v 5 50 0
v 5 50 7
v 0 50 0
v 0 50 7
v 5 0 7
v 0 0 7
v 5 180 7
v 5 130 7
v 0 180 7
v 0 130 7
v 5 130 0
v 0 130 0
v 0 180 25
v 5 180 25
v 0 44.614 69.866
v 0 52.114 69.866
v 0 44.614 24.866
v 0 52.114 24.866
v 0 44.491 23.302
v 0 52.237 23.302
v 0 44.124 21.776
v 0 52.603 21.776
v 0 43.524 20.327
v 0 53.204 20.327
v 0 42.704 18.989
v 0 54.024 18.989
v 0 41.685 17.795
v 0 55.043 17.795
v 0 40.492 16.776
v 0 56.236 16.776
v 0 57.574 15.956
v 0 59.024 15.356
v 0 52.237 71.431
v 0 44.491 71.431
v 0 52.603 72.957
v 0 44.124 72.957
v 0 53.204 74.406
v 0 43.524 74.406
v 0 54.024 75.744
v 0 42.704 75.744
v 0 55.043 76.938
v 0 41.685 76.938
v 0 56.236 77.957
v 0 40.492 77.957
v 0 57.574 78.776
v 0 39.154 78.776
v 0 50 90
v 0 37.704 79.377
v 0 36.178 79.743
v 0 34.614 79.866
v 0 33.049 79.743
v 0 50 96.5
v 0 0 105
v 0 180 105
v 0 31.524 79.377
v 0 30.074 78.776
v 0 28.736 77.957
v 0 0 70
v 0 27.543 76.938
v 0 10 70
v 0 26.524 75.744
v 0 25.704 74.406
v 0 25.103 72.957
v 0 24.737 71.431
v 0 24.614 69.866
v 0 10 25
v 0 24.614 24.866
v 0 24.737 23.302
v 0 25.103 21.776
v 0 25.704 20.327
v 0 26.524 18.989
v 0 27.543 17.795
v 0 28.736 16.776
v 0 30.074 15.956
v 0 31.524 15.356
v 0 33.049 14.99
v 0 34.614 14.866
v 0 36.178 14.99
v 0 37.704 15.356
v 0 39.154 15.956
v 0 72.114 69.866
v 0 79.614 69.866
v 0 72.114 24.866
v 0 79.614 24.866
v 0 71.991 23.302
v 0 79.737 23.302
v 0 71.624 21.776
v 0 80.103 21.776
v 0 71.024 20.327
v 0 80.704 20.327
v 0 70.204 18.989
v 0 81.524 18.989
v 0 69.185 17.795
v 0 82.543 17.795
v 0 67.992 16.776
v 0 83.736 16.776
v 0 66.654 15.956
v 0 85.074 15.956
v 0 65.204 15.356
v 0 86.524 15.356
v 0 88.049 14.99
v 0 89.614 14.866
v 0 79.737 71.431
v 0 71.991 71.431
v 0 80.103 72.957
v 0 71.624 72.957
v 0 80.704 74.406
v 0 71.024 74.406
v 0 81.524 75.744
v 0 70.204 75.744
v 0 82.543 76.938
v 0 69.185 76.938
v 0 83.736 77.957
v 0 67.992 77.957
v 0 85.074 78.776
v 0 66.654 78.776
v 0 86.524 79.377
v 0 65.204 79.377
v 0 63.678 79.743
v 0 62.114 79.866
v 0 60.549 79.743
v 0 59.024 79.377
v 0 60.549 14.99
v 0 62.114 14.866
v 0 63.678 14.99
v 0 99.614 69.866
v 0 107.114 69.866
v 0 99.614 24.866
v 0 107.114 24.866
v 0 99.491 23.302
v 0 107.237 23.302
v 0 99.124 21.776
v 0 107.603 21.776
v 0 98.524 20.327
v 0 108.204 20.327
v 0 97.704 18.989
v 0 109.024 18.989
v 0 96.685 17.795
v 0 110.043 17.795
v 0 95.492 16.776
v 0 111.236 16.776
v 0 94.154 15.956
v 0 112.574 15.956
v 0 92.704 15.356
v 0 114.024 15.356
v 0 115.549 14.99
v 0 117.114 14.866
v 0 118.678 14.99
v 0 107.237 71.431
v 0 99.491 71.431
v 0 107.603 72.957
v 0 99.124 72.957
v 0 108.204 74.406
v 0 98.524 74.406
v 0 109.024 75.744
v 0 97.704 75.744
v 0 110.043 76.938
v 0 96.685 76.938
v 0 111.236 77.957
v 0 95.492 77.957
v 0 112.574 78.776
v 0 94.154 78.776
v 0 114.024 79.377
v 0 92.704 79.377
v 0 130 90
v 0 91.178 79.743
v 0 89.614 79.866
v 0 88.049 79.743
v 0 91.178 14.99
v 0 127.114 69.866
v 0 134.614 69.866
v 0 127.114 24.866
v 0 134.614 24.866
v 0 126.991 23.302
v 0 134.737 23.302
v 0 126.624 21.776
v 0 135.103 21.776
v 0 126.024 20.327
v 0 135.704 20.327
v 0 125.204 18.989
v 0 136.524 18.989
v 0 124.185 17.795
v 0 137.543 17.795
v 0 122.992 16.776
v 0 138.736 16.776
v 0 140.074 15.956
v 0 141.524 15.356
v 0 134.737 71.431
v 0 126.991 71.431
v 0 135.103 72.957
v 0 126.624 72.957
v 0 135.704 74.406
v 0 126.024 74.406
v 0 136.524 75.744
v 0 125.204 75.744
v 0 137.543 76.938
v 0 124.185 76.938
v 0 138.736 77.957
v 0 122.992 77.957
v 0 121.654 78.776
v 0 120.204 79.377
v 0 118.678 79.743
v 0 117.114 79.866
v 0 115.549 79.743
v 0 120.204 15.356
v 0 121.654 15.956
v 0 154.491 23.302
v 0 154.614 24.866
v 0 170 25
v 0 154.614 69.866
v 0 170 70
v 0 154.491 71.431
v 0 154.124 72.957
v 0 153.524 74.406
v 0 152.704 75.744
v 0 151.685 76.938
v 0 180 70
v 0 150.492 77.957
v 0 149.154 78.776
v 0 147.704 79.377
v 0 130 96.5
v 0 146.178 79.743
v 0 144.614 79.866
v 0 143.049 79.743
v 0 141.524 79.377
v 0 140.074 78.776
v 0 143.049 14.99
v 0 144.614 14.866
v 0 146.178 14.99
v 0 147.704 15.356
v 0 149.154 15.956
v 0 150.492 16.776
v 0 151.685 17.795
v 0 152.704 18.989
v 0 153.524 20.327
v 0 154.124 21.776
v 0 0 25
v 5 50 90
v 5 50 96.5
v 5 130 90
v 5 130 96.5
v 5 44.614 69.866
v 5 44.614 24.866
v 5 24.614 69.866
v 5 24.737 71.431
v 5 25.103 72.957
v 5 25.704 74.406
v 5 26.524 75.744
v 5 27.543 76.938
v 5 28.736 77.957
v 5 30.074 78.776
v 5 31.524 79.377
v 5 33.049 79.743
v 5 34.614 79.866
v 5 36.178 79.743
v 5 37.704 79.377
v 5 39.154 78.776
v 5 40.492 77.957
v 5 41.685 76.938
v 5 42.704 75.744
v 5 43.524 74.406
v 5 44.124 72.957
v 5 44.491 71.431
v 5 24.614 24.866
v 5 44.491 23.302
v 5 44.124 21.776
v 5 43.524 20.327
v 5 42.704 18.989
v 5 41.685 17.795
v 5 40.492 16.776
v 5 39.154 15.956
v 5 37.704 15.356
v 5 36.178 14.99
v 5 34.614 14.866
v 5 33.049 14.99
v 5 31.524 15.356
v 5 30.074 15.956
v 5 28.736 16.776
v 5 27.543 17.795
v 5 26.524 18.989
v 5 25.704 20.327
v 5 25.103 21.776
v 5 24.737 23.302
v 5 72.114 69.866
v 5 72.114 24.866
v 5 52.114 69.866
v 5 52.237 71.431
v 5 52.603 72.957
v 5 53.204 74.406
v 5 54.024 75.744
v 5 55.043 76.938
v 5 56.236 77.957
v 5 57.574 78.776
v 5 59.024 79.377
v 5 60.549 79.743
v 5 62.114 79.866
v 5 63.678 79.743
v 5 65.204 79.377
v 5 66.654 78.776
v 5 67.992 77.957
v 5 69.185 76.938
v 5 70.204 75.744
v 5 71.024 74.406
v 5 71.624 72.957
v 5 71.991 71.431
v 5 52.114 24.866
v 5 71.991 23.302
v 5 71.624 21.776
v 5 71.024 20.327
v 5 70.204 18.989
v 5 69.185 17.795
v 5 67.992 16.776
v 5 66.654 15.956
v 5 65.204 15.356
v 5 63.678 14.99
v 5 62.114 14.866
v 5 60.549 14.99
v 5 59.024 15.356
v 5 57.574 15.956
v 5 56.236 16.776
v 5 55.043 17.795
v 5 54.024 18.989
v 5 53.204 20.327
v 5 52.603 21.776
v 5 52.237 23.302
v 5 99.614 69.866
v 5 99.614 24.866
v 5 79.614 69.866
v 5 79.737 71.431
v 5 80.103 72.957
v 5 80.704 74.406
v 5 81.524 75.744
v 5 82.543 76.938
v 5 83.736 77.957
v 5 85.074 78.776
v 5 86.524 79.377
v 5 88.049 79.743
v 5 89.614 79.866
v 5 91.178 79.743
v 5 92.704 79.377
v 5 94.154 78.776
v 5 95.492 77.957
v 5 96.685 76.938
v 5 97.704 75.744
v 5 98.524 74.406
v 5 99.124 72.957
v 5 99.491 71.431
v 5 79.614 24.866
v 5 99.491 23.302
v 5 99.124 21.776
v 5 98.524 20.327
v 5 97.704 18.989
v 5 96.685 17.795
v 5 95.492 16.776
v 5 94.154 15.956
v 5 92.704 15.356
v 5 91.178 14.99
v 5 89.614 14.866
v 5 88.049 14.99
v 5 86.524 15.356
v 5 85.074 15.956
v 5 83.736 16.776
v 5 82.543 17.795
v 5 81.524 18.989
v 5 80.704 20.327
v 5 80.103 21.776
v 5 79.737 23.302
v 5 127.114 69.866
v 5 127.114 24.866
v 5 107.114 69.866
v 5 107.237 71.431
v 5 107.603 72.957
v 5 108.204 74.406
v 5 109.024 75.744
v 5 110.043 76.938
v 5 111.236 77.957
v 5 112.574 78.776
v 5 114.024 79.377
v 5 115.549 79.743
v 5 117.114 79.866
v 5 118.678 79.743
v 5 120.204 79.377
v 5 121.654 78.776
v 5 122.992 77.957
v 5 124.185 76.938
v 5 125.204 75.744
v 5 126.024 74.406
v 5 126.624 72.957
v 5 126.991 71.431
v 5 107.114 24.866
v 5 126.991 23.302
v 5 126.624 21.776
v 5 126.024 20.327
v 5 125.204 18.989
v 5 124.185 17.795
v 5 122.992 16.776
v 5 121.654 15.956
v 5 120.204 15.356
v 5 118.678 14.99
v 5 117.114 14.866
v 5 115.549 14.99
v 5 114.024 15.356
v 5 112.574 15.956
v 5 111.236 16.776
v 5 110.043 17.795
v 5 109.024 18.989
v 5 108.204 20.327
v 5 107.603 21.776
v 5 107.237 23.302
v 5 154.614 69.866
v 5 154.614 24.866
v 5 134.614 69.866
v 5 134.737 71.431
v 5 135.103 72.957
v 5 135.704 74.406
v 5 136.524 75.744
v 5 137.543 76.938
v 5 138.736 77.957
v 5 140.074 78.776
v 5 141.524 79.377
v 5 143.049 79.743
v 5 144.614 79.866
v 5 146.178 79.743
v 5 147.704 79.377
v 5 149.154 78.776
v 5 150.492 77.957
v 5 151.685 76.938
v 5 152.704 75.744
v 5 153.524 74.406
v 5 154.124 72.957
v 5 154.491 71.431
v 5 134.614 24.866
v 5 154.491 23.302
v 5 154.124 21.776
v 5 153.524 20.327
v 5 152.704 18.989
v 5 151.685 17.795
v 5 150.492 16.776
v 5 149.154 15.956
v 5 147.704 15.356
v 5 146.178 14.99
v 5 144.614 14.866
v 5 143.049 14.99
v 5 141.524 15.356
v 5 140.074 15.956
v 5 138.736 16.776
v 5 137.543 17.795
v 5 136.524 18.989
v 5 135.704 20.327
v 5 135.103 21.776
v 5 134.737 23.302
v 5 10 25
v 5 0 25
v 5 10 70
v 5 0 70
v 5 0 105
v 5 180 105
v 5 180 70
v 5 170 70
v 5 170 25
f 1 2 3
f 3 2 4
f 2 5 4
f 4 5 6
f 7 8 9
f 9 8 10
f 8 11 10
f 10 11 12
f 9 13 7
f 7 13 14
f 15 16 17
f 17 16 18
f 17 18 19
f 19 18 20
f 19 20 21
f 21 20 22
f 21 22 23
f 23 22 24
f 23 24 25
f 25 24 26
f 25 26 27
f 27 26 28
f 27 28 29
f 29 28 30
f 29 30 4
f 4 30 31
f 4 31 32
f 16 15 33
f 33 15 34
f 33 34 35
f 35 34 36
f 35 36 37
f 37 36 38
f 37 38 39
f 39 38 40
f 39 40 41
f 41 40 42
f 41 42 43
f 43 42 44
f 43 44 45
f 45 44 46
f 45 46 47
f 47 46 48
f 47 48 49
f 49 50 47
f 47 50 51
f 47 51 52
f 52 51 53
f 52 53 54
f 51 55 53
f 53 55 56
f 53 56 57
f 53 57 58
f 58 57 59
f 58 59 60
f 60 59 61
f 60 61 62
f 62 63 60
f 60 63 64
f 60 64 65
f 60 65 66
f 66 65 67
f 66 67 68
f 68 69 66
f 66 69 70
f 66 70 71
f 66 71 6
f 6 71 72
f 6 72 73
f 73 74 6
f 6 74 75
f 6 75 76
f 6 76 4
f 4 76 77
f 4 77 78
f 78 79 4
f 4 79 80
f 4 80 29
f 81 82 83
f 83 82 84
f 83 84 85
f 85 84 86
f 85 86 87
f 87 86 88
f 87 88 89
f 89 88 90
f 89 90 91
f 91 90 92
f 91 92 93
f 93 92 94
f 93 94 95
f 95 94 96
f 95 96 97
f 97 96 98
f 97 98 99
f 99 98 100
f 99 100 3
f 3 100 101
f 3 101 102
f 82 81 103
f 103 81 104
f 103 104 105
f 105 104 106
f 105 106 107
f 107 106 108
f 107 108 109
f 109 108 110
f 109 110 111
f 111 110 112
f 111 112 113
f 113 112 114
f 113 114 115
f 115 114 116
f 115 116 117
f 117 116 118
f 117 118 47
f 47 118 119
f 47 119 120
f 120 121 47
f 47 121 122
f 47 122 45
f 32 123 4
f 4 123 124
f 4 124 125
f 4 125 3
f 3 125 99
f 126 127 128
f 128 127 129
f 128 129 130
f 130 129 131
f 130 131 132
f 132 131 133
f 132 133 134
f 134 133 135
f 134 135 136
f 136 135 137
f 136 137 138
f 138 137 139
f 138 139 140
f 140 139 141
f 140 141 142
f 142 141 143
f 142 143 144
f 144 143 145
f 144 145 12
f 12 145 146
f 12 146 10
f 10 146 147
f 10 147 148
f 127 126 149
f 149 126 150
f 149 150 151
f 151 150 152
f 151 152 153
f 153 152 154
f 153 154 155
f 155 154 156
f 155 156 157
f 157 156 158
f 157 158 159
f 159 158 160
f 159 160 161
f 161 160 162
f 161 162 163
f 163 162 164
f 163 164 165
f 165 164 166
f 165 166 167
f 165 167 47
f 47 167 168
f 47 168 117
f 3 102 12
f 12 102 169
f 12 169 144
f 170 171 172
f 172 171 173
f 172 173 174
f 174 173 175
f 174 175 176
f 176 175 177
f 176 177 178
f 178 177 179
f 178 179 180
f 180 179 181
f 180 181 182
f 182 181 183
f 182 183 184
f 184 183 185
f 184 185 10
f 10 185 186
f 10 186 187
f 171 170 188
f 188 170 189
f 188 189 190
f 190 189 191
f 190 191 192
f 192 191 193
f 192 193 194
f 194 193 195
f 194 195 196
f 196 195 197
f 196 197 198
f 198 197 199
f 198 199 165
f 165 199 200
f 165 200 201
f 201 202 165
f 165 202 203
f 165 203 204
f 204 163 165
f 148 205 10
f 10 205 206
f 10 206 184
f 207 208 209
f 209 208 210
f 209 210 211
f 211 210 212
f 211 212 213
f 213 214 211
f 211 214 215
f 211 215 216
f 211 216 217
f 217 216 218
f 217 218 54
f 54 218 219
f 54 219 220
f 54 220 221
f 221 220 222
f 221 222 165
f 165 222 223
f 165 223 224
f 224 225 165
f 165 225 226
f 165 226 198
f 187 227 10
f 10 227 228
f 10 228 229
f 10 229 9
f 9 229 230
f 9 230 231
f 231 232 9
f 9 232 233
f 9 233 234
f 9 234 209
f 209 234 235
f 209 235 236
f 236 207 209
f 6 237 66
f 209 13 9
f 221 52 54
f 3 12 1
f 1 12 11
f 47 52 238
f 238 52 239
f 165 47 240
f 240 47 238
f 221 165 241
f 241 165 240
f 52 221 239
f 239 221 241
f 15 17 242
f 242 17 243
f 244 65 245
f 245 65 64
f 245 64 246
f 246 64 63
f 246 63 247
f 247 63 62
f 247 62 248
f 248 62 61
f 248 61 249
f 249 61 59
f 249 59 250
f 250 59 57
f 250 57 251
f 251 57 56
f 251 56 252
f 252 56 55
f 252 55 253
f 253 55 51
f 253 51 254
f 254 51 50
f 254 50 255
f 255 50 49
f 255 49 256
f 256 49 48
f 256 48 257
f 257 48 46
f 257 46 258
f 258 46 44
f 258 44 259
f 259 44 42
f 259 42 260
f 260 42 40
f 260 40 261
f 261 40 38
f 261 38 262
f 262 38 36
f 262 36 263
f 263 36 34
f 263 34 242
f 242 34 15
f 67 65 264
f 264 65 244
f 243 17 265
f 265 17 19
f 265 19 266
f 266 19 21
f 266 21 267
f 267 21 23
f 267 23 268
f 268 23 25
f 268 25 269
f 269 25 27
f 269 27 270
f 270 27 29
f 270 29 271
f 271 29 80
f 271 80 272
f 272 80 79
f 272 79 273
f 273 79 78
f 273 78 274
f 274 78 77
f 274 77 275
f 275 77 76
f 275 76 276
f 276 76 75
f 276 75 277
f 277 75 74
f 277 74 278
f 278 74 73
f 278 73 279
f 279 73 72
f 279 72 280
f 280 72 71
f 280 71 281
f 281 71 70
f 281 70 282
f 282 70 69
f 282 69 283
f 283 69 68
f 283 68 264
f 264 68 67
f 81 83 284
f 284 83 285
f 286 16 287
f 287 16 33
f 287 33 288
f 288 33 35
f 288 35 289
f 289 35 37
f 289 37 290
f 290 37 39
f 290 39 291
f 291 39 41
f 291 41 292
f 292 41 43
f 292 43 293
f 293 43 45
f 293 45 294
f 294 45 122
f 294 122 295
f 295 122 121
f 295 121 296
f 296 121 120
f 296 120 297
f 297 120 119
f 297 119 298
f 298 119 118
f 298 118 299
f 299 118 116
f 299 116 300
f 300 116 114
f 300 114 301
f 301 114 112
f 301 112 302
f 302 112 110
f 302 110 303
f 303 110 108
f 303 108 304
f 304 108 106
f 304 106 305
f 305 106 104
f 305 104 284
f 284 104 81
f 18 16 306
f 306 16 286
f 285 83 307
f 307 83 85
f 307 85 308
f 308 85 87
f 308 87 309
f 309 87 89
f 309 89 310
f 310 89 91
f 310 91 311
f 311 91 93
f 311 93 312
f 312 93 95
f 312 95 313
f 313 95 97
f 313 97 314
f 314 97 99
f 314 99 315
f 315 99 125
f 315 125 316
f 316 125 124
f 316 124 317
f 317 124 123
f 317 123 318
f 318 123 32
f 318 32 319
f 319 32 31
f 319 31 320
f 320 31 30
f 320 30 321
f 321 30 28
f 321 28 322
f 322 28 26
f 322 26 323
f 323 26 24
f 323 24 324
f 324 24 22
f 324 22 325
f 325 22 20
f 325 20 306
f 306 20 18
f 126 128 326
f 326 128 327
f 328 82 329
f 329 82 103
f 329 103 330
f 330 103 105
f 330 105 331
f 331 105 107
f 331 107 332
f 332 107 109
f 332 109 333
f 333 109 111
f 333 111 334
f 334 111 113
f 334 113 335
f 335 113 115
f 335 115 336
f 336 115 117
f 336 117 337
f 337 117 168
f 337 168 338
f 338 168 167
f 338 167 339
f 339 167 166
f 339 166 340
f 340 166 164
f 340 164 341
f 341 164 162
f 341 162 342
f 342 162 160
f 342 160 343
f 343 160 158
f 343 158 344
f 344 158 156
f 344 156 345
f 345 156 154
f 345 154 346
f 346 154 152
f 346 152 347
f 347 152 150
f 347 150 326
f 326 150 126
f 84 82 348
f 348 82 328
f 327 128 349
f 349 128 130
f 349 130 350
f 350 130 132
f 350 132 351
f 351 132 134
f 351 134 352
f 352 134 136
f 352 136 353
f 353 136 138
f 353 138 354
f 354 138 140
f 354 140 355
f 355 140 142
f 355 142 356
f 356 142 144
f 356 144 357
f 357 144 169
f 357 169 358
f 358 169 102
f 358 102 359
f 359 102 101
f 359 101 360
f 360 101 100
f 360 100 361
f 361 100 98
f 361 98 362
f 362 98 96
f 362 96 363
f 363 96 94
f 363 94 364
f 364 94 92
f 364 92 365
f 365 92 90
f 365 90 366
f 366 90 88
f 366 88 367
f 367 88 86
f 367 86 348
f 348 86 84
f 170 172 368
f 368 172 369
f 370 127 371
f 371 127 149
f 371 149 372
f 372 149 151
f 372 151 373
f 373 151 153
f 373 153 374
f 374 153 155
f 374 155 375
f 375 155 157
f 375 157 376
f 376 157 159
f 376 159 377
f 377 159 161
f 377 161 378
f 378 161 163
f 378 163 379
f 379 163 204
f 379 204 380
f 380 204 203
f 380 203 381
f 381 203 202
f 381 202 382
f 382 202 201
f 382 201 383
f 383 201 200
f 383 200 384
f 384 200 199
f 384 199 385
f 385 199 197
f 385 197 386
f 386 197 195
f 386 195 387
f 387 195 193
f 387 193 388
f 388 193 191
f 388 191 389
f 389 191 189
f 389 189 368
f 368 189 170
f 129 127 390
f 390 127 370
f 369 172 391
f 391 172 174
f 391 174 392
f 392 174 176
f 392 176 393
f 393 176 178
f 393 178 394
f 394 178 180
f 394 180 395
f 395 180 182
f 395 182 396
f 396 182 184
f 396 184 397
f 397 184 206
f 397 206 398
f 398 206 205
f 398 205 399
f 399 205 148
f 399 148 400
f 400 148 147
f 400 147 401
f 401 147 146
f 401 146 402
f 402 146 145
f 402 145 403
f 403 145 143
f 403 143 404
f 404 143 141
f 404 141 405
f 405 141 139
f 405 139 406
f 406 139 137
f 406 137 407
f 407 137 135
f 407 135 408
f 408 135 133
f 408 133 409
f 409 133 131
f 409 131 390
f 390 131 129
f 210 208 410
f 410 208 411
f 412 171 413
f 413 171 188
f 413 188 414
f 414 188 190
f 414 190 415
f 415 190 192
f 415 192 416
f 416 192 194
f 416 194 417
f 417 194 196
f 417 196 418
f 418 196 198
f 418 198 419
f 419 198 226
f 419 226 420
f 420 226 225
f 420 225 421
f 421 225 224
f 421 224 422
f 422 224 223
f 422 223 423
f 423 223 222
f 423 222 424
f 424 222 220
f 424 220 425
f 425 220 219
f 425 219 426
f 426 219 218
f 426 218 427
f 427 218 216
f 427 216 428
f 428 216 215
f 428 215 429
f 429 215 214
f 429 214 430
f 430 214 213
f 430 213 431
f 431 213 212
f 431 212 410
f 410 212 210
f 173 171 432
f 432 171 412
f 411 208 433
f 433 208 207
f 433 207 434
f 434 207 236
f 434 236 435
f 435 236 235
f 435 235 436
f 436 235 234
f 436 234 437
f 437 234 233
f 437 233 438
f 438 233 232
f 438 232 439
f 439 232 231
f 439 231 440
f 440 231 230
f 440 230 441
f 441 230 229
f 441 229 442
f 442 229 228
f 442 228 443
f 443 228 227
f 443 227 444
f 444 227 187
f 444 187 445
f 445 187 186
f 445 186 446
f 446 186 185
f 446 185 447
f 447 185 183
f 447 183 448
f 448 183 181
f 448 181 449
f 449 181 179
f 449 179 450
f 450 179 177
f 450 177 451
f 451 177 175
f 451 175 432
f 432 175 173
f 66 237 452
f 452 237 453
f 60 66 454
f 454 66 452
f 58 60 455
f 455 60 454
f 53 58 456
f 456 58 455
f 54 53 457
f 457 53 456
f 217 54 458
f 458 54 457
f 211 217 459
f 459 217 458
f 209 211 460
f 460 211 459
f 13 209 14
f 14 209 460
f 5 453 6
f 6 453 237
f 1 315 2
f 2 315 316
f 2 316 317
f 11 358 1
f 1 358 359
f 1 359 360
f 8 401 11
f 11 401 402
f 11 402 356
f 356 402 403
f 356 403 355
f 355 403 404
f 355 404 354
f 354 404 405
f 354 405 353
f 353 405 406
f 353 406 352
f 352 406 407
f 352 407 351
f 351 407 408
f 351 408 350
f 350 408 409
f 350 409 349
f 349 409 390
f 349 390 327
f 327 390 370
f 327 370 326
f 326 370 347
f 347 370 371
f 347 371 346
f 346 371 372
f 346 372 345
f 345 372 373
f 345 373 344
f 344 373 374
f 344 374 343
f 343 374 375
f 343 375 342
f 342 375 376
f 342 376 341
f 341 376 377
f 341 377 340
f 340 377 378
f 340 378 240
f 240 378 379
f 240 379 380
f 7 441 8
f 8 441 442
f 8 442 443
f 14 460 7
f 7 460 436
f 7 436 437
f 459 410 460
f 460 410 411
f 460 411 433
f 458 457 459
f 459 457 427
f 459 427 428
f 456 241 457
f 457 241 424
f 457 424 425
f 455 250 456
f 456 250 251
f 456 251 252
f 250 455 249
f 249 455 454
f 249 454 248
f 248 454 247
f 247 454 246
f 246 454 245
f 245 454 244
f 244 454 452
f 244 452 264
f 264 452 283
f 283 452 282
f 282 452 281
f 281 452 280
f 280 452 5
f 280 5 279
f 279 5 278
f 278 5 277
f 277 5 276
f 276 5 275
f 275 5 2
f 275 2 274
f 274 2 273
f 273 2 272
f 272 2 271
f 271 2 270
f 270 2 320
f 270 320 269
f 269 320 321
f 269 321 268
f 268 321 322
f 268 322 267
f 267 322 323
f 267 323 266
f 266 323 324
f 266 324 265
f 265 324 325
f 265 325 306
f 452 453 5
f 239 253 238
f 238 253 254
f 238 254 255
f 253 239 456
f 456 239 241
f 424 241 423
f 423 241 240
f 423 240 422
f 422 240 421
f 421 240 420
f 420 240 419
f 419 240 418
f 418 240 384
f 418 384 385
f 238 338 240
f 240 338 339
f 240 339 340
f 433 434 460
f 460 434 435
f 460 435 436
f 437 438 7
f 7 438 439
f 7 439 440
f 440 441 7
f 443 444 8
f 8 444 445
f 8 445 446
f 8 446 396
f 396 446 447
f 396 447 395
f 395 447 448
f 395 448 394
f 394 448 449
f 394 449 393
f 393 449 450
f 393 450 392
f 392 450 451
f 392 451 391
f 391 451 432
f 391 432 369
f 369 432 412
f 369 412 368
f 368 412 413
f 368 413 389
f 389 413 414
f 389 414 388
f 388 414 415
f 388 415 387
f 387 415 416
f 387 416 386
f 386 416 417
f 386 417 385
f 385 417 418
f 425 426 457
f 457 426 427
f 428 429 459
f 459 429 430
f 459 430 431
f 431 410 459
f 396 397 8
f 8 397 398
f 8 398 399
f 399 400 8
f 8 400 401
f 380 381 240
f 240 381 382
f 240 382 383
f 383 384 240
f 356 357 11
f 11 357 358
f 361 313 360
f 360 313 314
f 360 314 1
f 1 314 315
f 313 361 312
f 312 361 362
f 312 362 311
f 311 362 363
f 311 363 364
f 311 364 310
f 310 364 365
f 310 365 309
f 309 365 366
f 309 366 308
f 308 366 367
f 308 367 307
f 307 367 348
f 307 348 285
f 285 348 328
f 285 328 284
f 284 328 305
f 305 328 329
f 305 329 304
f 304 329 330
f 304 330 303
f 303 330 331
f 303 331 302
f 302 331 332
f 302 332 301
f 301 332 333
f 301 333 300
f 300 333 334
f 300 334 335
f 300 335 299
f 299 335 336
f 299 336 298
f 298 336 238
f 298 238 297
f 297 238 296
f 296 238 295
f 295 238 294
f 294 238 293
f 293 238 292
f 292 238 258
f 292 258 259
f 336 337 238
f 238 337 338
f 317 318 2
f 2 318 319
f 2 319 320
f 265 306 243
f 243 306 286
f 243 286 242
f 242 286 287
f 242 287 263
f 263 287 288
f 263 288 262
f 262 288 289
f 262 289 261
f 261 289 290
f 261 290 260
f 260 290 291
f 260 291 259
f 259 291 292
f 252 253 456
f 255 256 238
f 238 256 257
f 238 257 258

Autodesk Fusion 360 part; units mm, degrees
sketch "Sketch1" plane through (0, 0, 0) normal (1, 0, 0) x (0, 1, 0)
  line L0 (0, 0) -> (180, 0)
  line L1 (180, 0) -> (180, 25)
  line L2 (180, 25) -> (170, 25)
  line L3 (170, 25) -> (170, 70)
  line L4 (170, 70) -> (180, 70)
  line L5 (180, 70) -> (180, 105)
  line L6 (180, 105) -> (170, 105)
  line L7 (170, 105) -> (0, 105)
  line L8 (0, 105) -> (0, 70)
  line L9 (0, 70) -> (10, 70)
  line L10 (10, 70) -> (10, 25)
  line L11 (10, 25) -> (0, 25)
  line L12 (0, 25) -> (0, 0)
  line L13 (0, 0) -> (50, 0)
  line L14 (50, 0) -> (50, 7)
  line L15 (50, 7) -> (0, 7)
  line L16 (0, 7) -> (0, 0)
  line L17 (180, 0) -> (130, 0)
  line L18 (130, 0) -> (130, 7)
  line L19 (130, 7) -> (180, 7)
  line L20 (180, 7) -> (180, 0)
  dimension "d1" = 180
  dimension "d2" = 10
  dimension "d4" = 25
  dimension "d5" = 105
  dimension "d6" = 10
  dimension "d20" = 35
  dimension "d22" = 7
  dimension "d23" = 50
  dimension "d26" = 80
extrude "Extrude1" add sketch "Sketch1" along normal blind 5
sketch "Sketch2" plane through (5, 0, 0) normal (1, 0, 0) x (0, 1, 0)
  line L0 (0, 25) -> (0, 0)
  line L1 (0, 0) -> (180, 0)
  line L2 (180, 0) -> (180, 25)
  line L3 (180, 25) -> (170, 25)
  line L4 (170, 25) -> (170, 70)
  line L5 (170, 70) -> (180, 70)
  line L6 (180, 70) -> (180, 105)
  line L7 (180, 105) -> (0, 105)
  line L8 (0, 105) -> (0, 70)
  line L9 (0, 70) -> (10, 70)
  line L10 (10, 70) -> (10, 25)
  line L11 (10, 25) -> (0, 25)
  line L12 (134.6138, 69.8664) -> (134.6138, 24.8664)
  arc A0 (134.6138, 24.8664) -> (154.6138, 24.8664) centre (144.6138, 24.8664) ccw
  line L13 (154.6138, 24.8664) -> (154.6138, 69.8664)
  arc A1 (154.6138, 69.8664) -> (134.6138, 69.8664) centre (144.6138, 69.8664) ccw
  line L14 (144.6138, 69.8664) -> (144.6138, 24.8664) construction
  line L15 (50, 96.5) -> (130, 96.5)
  line L16 (130, 96.5) -> (130, 90)
  line L17 (130, 90) -> (50, 90)
  line L18 (50, 90) -> (50, 96.5)
  dimension "d9" = 20
  dimension "d15" = 90
  dimension "d16" = 6.5
  dimension "d17" = 80
  dimension "d18" = 50
  dimension "d25" = 45
extrude "Extrude2" cut sketch "Sketch2" against normal through all contours L12 A0 L13 A1
pattern_linear "R-Pattern1" count 1 spacing 0 along (0, 0, -1) count 5 spacing 27.5 along (0, -1, 0) of "Extrude2"
extrude "Extrude3" cut sketch "Sketch2" against normal through all contours L15 L16 L17 L18
extrude "Extrude4" cut sketch "Sketch1" along normal through all contours L0 L12 L13 L14 L15 L16 | L0 L1 L17 L18 L19 L20
